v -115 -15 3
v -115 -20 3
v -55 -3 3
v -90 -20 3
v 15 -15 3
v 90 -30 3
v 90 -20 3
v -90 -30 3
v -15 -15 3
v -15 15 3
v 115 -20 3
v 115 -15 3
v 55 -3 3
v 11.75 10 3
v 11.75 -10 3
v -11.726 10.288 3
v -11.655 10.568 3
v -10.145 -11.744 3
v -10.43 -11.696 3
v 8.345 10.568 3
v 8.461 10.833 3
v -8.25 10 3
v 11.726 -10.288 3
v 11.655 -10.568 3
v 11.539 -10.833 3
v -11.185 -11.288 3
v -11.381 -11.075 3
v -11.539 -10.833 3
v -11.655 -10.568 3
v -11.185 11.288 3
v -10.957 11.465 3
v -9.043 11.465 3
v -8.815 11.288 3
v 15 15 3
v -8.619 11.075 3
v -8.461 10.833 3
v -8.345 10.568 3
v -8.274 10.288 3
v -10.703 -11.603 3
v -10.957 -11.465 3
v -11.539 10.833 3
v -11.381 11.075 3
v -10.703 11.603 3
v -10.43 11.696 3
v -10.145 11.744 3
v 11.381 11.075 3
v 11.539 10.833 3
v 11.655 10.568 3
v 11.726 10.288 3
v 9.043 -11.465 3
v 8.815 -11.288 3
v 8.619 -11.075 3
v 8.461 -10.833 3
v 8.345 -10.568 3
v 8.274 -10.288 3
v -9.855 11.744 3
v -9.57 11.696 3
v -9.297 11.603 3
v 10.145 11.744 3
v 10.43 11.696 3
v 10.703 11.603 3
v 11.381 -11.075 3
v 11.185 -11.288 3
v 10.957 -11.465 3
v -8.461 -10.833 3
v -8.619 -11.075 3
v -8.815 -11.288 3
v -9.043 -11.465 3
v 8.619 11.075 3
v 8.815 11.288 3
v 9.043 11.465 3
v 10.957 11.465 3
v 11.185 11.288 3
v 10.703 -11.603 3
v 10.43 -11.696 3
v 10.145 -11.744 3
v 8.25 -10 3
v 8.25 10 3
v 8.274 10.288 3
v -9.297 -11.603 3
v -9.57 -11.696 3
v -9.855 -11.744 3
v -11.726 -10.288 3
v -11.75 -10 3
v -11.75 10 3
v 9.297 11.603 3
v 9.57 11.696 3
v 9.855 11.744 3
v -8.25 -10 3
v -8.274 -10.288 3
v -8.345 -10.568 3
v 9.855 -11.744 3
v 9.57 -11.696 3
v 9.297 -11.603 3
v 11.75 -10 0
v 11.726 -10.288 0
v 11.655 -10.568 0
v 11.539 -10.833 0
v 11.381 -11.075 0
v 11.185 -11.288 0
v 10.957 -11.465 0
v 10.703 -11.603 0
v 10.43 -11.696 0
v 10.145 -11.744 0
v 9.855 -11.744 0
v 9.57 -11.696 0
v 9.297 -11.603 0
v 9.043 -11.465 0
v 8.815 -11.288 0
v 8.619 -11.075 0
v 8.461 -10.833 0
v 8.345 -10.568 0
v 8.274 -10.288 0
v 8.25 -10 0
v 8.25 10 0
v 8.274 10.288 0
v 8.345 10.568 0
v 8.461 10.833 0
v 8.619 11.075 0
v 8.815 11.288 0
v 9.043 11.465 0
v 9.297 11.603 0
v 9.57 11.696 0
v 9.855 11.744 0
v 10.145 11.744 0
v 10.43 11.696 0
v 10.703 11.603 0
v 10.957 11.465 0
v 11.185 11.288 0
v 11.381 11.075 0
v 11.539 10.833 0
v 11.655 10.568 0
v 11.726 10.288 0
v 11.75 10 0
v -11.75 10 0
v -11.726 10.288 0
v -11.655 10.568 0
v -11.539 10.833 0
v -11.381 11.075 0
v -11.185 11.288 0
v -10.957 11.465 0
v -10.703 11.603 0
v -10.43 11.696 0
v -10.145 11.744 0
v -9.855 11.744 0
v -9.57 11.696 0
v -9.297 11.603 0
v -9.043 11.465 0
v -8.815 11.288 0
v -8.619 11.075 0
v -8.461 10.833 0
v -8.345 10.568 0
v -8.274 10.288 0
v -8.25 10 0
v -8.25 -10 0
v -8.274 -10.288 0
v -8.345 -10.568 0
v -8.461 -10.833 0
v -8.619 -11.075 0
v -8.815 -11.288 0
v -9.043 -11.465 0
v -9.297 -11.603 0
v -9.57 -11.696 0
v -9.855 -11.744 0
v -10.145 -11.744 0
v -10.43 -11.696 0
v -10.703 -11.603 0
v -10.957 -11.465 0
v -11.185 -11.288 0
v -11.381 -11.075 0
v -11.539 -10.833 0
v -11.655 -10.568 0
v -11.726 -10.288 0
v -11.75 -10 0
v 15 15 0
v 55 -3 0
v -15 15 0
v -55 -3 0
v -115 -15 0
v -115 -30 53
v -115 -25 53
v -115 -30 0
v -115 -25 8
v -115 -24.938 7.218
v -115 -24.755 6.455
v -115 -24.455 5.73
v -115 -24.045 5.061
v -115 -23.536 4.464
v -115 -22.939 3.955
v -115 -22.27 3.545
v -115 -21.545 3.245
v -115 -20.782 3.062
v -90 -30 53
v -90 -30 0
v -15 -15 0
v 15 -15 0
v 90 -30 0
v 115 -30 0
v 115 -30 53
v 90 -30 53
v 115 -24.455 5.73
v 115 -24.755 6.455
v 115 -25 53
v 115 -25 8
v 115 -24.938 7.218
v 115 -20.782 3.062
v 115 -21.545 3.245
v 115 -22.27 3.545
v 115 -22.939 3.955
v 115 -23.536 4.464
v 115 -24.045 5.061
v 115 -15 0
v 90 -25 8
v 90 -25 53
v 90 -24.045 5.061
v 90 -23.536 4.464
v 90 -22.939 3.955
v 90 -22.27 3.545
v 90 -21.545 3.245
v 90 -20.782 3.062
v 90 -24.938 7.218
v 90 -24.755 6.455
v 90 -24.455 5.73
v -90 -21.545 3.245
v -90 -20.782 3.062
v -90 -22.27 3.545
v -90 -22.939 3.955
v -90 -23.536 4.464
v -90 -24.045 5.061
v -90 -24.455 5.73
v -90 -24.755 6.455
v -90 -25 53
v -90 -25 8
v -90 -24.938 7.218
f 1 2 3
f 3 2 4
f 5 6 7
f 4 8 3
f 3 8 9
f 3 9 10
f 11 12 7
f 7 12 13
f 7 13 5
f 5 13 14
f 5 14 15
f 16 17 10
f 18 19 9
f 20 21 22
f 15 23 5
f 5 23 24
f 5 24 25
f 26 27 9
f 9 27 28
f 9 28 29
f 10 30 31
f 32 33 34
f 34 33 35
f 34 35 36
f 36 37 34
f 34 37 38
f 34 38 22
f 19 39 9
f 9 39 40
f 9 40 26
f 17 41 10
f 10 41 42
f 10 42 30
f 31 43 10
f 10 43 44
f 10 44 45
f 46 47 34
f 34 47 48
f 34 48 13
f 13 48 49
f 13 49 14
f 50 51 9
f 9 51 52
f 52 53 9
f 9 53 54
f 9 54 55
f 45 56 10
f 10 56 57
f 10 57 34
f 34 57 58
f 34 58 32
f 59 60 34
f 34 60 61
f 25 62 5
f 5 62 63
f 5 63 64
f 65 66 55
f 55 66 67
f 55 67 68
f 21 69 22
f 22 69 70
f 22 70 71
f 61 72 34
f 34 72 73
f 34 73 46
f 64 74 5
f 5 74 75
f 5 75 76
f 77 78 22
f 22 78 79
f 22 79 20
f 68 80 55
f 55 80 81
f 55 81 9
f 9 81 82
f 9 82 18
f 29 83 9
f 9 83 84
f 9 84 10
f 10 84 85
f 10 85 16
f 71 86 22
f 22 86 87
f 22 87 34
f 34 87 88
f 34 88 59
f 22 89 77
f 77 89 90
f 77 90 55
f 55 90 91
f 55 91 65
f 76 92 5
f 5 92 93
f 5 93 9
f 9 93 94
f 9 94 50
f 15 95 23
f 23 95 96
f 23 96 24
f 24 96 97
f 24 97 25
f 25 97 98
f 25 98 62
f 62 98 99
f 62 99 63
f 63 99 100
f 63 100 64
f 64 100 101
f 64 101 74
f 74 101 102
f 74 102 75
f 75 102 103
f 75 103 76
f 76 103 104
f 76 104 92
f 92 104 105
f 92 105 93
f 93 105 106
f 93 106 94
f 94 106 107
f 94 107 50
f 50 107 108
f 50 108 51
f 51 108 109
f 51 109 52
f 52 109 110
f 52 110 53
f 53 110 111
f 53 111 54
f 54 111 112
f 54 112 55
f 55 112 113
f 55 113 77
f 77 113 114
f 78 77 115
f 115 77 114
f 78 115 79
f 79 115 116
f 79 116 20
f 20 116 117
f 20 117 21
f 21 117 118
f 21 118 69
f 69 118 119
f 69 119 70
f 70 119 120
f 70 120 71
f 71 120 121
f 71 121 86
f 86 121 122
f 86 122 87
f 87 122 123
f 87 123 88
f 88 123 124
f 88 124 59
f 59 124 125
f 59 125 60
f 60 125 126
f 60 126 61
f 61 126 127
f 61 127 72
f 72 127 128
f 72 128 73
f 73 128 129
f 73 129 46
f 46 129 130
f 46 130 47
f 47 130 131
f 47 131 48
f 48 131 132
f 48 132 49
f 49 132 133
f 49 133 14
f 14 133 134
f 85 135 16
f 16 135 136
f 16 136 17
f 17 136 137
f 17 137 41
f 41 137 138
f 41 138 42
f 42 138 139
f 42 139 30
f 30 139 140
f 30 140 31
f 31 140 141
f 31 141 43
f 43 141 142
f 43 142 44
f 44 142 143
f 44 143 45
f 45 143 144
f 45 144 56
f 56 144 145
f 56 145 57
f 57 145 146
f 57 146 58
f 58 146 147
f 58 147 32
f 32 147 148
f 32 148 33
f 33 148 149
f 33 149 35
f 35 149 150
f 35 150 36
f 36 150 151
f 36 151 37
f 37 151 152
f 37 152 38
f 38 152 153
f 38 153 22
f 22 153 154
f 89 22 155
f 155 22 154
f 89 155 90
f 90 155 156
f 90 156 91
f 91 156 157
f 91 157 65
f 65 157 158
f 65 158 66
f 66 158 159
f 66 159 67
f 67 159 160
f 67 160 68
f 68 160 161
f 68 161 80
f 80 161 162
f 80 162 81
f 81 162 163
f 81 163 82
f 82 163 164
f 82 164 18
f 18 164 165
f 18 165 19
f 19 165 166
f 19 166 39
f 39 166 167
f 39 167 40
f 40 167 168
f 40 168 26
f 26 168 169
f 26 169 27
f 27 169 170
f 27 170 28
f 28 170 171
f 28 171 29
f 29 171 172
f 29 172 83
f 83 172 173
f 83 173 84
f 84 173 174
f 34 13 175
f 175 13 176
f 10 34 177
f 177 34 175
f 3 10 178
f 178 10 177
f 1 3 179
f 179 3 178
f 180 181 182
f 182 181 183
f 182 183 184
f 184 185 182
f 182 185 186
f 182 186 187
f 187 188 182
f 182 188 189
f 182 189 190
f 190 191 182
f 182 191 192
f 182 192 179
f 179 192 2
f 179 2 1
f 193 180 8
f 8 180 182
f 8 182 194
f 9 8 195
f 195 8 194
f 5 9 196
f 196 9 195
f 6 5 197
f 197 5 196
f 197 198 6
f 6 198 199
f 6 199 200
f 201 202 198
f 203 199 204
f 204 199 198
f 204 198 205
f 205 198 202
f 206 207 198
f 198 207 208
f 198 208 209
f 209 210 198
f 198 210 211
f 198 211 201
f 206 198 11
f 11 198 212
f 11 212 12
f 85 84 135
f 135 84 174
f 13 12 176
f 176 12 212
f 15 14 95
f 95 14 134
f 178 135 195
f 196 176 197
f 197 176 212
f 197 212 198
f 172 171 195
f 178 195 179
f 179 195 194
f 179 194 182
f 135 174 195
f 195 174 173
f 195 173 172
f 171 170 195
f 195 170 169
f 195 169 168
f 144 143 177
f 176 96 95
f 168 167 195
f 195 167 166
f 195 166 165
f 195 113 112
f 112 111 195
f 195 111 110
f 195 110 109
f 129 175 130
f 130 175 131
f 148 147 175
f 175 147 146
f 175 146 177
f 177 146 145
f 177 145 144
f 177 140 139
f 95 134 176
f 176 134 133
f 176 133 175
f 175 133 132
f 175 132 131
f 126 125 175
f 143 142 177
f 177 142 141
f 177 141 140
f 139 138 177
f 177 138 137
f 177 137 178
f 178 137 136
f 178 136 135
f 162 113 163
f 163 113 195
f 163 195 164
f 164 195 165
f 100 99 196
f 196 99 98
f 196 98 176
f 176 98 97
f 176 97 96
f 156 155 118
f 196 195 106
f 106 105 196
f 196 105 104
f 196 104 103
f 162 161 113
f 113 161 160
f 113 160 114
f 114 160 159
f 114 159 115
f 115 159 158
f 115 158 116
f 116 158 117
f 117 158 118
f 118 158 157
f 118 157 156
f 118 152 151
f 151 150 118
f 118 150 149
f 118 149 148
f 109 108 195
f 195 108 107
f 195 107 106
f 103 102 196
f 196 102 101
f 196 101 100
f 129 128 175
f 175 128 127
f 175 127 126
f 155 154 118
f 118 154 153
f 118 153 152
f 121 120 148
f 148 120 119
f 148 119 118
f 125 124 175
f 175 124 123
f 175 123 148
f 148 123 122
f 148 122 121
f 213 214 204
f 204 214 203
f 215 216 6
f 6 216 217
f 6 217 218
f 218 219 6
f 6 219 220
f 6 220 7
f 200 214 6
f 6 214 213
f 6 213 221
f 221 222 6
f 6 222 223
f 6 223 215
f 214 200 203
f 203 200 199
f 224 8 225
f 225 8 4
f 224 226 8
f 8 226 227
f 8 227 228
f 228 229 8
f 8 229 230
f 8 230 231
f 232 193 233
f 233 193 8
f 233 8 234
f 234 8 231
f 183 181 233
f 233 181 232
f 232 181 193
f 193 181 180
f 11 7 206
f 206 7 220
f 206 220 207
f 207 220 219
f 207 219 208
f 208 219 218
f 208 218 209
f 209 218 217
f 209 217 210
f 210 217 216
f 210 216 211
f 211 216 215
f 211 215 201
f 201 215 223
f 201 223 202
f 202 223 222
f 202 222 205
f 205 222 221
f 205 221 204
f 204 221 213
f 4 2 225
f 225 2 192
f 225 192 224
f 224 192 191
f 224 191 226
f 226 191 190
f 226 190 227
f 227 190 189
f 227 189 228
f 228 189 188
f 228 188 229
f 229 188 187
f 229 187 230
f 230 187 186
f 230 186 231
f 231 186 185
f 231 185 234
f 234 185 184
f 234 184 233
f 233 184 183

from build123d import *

# Parameters (mm, degrees)
SKETCH_1_W      = 30
SKETCH_1_H      = 30
EXTRUDE_1_DEPTH = 3
EXTRUDE_START   = -3
SKETCH_2_W      = 25
SKETCH_2_H      = 5
EXTRUDE_2_DEPTH = 50
FILLET_1_R      = 5


with BuildPart() as part:
    # 草图1 → 凸台-拉伸1 (new body)
    # profile 1 of 3: a face of its own
    with BuildSketch(Plane.XY):
        Polygon((15, 15), (15, -15), (90, -30), (115, -30), (115, -15), (55, -3), align=None)
    # profile 2 of 3: a face of its own
    with BuildSketch(Plane.XY):
        Rectangle(SKETCH_1_W, SKETCH_1_H)
        with BuildLine():
            Line((-11.75, -10), (-11.75, 10))
            ThreePointArc((-11.75, 10), (-10, 11.75), (-8.25, 10))
            Line((-8.25, 10), (-8.25, -10))
            ThreePointArc((-8.25, -10), (-10, -11.75), (-11.75, -10))
        make_face(mode=Mode.SUBTRACT)
        with BuildLine():
            ThreePointArc((8.25, 10), (10, 11.75), (11.75, 10))
            Line((11.75, 10), (11.75, -10))
            ThreePointArc((11.75, -10), (10, -11.75), (8.25, -10))
            Line((8.25, -10), (8.25, 10))
        make_face(mode=Mode.SUBTRACT)
    # profile 3 of 3: a face of its own
    with BuildSketch(Plane.XY):
        Polygon((-55, -3), (-15, 15), (-15, -15), (-90, -30), (-115, -30), (-115, -15), align=None)
    extrude(amount=EXTRUDE_1_DEPTH)

    # 草图2 → 凸台-拉伸2 (add)
    with BuildSketch(Plane(origin=(0, 0, 0), x_dir=(-1, 0, 0), z_dir=(0, 0, -1)).offset(EXTRUDE_START)):
        with Locations((-102.5, -27.5)):
            Rectangle(SKETCH_2_W, SKETCH_2_H)
        with Locations((102.5, -27.5)):
            Rectangle(SKETCH_2_W, SKETCH_2_H)
    extrude(amount=-EXTRUDE_2_DEPTH)

    # 圆角1
    fillet_1_edges = [part.edges().sort_by_distance(p)[0] for p in [
        (102.5, -25, 3),
        (-102.5, -25, 3),
    ]]
    fillet(fillet_1_edges, radius=FILLET_1_R)


solid = part.part
